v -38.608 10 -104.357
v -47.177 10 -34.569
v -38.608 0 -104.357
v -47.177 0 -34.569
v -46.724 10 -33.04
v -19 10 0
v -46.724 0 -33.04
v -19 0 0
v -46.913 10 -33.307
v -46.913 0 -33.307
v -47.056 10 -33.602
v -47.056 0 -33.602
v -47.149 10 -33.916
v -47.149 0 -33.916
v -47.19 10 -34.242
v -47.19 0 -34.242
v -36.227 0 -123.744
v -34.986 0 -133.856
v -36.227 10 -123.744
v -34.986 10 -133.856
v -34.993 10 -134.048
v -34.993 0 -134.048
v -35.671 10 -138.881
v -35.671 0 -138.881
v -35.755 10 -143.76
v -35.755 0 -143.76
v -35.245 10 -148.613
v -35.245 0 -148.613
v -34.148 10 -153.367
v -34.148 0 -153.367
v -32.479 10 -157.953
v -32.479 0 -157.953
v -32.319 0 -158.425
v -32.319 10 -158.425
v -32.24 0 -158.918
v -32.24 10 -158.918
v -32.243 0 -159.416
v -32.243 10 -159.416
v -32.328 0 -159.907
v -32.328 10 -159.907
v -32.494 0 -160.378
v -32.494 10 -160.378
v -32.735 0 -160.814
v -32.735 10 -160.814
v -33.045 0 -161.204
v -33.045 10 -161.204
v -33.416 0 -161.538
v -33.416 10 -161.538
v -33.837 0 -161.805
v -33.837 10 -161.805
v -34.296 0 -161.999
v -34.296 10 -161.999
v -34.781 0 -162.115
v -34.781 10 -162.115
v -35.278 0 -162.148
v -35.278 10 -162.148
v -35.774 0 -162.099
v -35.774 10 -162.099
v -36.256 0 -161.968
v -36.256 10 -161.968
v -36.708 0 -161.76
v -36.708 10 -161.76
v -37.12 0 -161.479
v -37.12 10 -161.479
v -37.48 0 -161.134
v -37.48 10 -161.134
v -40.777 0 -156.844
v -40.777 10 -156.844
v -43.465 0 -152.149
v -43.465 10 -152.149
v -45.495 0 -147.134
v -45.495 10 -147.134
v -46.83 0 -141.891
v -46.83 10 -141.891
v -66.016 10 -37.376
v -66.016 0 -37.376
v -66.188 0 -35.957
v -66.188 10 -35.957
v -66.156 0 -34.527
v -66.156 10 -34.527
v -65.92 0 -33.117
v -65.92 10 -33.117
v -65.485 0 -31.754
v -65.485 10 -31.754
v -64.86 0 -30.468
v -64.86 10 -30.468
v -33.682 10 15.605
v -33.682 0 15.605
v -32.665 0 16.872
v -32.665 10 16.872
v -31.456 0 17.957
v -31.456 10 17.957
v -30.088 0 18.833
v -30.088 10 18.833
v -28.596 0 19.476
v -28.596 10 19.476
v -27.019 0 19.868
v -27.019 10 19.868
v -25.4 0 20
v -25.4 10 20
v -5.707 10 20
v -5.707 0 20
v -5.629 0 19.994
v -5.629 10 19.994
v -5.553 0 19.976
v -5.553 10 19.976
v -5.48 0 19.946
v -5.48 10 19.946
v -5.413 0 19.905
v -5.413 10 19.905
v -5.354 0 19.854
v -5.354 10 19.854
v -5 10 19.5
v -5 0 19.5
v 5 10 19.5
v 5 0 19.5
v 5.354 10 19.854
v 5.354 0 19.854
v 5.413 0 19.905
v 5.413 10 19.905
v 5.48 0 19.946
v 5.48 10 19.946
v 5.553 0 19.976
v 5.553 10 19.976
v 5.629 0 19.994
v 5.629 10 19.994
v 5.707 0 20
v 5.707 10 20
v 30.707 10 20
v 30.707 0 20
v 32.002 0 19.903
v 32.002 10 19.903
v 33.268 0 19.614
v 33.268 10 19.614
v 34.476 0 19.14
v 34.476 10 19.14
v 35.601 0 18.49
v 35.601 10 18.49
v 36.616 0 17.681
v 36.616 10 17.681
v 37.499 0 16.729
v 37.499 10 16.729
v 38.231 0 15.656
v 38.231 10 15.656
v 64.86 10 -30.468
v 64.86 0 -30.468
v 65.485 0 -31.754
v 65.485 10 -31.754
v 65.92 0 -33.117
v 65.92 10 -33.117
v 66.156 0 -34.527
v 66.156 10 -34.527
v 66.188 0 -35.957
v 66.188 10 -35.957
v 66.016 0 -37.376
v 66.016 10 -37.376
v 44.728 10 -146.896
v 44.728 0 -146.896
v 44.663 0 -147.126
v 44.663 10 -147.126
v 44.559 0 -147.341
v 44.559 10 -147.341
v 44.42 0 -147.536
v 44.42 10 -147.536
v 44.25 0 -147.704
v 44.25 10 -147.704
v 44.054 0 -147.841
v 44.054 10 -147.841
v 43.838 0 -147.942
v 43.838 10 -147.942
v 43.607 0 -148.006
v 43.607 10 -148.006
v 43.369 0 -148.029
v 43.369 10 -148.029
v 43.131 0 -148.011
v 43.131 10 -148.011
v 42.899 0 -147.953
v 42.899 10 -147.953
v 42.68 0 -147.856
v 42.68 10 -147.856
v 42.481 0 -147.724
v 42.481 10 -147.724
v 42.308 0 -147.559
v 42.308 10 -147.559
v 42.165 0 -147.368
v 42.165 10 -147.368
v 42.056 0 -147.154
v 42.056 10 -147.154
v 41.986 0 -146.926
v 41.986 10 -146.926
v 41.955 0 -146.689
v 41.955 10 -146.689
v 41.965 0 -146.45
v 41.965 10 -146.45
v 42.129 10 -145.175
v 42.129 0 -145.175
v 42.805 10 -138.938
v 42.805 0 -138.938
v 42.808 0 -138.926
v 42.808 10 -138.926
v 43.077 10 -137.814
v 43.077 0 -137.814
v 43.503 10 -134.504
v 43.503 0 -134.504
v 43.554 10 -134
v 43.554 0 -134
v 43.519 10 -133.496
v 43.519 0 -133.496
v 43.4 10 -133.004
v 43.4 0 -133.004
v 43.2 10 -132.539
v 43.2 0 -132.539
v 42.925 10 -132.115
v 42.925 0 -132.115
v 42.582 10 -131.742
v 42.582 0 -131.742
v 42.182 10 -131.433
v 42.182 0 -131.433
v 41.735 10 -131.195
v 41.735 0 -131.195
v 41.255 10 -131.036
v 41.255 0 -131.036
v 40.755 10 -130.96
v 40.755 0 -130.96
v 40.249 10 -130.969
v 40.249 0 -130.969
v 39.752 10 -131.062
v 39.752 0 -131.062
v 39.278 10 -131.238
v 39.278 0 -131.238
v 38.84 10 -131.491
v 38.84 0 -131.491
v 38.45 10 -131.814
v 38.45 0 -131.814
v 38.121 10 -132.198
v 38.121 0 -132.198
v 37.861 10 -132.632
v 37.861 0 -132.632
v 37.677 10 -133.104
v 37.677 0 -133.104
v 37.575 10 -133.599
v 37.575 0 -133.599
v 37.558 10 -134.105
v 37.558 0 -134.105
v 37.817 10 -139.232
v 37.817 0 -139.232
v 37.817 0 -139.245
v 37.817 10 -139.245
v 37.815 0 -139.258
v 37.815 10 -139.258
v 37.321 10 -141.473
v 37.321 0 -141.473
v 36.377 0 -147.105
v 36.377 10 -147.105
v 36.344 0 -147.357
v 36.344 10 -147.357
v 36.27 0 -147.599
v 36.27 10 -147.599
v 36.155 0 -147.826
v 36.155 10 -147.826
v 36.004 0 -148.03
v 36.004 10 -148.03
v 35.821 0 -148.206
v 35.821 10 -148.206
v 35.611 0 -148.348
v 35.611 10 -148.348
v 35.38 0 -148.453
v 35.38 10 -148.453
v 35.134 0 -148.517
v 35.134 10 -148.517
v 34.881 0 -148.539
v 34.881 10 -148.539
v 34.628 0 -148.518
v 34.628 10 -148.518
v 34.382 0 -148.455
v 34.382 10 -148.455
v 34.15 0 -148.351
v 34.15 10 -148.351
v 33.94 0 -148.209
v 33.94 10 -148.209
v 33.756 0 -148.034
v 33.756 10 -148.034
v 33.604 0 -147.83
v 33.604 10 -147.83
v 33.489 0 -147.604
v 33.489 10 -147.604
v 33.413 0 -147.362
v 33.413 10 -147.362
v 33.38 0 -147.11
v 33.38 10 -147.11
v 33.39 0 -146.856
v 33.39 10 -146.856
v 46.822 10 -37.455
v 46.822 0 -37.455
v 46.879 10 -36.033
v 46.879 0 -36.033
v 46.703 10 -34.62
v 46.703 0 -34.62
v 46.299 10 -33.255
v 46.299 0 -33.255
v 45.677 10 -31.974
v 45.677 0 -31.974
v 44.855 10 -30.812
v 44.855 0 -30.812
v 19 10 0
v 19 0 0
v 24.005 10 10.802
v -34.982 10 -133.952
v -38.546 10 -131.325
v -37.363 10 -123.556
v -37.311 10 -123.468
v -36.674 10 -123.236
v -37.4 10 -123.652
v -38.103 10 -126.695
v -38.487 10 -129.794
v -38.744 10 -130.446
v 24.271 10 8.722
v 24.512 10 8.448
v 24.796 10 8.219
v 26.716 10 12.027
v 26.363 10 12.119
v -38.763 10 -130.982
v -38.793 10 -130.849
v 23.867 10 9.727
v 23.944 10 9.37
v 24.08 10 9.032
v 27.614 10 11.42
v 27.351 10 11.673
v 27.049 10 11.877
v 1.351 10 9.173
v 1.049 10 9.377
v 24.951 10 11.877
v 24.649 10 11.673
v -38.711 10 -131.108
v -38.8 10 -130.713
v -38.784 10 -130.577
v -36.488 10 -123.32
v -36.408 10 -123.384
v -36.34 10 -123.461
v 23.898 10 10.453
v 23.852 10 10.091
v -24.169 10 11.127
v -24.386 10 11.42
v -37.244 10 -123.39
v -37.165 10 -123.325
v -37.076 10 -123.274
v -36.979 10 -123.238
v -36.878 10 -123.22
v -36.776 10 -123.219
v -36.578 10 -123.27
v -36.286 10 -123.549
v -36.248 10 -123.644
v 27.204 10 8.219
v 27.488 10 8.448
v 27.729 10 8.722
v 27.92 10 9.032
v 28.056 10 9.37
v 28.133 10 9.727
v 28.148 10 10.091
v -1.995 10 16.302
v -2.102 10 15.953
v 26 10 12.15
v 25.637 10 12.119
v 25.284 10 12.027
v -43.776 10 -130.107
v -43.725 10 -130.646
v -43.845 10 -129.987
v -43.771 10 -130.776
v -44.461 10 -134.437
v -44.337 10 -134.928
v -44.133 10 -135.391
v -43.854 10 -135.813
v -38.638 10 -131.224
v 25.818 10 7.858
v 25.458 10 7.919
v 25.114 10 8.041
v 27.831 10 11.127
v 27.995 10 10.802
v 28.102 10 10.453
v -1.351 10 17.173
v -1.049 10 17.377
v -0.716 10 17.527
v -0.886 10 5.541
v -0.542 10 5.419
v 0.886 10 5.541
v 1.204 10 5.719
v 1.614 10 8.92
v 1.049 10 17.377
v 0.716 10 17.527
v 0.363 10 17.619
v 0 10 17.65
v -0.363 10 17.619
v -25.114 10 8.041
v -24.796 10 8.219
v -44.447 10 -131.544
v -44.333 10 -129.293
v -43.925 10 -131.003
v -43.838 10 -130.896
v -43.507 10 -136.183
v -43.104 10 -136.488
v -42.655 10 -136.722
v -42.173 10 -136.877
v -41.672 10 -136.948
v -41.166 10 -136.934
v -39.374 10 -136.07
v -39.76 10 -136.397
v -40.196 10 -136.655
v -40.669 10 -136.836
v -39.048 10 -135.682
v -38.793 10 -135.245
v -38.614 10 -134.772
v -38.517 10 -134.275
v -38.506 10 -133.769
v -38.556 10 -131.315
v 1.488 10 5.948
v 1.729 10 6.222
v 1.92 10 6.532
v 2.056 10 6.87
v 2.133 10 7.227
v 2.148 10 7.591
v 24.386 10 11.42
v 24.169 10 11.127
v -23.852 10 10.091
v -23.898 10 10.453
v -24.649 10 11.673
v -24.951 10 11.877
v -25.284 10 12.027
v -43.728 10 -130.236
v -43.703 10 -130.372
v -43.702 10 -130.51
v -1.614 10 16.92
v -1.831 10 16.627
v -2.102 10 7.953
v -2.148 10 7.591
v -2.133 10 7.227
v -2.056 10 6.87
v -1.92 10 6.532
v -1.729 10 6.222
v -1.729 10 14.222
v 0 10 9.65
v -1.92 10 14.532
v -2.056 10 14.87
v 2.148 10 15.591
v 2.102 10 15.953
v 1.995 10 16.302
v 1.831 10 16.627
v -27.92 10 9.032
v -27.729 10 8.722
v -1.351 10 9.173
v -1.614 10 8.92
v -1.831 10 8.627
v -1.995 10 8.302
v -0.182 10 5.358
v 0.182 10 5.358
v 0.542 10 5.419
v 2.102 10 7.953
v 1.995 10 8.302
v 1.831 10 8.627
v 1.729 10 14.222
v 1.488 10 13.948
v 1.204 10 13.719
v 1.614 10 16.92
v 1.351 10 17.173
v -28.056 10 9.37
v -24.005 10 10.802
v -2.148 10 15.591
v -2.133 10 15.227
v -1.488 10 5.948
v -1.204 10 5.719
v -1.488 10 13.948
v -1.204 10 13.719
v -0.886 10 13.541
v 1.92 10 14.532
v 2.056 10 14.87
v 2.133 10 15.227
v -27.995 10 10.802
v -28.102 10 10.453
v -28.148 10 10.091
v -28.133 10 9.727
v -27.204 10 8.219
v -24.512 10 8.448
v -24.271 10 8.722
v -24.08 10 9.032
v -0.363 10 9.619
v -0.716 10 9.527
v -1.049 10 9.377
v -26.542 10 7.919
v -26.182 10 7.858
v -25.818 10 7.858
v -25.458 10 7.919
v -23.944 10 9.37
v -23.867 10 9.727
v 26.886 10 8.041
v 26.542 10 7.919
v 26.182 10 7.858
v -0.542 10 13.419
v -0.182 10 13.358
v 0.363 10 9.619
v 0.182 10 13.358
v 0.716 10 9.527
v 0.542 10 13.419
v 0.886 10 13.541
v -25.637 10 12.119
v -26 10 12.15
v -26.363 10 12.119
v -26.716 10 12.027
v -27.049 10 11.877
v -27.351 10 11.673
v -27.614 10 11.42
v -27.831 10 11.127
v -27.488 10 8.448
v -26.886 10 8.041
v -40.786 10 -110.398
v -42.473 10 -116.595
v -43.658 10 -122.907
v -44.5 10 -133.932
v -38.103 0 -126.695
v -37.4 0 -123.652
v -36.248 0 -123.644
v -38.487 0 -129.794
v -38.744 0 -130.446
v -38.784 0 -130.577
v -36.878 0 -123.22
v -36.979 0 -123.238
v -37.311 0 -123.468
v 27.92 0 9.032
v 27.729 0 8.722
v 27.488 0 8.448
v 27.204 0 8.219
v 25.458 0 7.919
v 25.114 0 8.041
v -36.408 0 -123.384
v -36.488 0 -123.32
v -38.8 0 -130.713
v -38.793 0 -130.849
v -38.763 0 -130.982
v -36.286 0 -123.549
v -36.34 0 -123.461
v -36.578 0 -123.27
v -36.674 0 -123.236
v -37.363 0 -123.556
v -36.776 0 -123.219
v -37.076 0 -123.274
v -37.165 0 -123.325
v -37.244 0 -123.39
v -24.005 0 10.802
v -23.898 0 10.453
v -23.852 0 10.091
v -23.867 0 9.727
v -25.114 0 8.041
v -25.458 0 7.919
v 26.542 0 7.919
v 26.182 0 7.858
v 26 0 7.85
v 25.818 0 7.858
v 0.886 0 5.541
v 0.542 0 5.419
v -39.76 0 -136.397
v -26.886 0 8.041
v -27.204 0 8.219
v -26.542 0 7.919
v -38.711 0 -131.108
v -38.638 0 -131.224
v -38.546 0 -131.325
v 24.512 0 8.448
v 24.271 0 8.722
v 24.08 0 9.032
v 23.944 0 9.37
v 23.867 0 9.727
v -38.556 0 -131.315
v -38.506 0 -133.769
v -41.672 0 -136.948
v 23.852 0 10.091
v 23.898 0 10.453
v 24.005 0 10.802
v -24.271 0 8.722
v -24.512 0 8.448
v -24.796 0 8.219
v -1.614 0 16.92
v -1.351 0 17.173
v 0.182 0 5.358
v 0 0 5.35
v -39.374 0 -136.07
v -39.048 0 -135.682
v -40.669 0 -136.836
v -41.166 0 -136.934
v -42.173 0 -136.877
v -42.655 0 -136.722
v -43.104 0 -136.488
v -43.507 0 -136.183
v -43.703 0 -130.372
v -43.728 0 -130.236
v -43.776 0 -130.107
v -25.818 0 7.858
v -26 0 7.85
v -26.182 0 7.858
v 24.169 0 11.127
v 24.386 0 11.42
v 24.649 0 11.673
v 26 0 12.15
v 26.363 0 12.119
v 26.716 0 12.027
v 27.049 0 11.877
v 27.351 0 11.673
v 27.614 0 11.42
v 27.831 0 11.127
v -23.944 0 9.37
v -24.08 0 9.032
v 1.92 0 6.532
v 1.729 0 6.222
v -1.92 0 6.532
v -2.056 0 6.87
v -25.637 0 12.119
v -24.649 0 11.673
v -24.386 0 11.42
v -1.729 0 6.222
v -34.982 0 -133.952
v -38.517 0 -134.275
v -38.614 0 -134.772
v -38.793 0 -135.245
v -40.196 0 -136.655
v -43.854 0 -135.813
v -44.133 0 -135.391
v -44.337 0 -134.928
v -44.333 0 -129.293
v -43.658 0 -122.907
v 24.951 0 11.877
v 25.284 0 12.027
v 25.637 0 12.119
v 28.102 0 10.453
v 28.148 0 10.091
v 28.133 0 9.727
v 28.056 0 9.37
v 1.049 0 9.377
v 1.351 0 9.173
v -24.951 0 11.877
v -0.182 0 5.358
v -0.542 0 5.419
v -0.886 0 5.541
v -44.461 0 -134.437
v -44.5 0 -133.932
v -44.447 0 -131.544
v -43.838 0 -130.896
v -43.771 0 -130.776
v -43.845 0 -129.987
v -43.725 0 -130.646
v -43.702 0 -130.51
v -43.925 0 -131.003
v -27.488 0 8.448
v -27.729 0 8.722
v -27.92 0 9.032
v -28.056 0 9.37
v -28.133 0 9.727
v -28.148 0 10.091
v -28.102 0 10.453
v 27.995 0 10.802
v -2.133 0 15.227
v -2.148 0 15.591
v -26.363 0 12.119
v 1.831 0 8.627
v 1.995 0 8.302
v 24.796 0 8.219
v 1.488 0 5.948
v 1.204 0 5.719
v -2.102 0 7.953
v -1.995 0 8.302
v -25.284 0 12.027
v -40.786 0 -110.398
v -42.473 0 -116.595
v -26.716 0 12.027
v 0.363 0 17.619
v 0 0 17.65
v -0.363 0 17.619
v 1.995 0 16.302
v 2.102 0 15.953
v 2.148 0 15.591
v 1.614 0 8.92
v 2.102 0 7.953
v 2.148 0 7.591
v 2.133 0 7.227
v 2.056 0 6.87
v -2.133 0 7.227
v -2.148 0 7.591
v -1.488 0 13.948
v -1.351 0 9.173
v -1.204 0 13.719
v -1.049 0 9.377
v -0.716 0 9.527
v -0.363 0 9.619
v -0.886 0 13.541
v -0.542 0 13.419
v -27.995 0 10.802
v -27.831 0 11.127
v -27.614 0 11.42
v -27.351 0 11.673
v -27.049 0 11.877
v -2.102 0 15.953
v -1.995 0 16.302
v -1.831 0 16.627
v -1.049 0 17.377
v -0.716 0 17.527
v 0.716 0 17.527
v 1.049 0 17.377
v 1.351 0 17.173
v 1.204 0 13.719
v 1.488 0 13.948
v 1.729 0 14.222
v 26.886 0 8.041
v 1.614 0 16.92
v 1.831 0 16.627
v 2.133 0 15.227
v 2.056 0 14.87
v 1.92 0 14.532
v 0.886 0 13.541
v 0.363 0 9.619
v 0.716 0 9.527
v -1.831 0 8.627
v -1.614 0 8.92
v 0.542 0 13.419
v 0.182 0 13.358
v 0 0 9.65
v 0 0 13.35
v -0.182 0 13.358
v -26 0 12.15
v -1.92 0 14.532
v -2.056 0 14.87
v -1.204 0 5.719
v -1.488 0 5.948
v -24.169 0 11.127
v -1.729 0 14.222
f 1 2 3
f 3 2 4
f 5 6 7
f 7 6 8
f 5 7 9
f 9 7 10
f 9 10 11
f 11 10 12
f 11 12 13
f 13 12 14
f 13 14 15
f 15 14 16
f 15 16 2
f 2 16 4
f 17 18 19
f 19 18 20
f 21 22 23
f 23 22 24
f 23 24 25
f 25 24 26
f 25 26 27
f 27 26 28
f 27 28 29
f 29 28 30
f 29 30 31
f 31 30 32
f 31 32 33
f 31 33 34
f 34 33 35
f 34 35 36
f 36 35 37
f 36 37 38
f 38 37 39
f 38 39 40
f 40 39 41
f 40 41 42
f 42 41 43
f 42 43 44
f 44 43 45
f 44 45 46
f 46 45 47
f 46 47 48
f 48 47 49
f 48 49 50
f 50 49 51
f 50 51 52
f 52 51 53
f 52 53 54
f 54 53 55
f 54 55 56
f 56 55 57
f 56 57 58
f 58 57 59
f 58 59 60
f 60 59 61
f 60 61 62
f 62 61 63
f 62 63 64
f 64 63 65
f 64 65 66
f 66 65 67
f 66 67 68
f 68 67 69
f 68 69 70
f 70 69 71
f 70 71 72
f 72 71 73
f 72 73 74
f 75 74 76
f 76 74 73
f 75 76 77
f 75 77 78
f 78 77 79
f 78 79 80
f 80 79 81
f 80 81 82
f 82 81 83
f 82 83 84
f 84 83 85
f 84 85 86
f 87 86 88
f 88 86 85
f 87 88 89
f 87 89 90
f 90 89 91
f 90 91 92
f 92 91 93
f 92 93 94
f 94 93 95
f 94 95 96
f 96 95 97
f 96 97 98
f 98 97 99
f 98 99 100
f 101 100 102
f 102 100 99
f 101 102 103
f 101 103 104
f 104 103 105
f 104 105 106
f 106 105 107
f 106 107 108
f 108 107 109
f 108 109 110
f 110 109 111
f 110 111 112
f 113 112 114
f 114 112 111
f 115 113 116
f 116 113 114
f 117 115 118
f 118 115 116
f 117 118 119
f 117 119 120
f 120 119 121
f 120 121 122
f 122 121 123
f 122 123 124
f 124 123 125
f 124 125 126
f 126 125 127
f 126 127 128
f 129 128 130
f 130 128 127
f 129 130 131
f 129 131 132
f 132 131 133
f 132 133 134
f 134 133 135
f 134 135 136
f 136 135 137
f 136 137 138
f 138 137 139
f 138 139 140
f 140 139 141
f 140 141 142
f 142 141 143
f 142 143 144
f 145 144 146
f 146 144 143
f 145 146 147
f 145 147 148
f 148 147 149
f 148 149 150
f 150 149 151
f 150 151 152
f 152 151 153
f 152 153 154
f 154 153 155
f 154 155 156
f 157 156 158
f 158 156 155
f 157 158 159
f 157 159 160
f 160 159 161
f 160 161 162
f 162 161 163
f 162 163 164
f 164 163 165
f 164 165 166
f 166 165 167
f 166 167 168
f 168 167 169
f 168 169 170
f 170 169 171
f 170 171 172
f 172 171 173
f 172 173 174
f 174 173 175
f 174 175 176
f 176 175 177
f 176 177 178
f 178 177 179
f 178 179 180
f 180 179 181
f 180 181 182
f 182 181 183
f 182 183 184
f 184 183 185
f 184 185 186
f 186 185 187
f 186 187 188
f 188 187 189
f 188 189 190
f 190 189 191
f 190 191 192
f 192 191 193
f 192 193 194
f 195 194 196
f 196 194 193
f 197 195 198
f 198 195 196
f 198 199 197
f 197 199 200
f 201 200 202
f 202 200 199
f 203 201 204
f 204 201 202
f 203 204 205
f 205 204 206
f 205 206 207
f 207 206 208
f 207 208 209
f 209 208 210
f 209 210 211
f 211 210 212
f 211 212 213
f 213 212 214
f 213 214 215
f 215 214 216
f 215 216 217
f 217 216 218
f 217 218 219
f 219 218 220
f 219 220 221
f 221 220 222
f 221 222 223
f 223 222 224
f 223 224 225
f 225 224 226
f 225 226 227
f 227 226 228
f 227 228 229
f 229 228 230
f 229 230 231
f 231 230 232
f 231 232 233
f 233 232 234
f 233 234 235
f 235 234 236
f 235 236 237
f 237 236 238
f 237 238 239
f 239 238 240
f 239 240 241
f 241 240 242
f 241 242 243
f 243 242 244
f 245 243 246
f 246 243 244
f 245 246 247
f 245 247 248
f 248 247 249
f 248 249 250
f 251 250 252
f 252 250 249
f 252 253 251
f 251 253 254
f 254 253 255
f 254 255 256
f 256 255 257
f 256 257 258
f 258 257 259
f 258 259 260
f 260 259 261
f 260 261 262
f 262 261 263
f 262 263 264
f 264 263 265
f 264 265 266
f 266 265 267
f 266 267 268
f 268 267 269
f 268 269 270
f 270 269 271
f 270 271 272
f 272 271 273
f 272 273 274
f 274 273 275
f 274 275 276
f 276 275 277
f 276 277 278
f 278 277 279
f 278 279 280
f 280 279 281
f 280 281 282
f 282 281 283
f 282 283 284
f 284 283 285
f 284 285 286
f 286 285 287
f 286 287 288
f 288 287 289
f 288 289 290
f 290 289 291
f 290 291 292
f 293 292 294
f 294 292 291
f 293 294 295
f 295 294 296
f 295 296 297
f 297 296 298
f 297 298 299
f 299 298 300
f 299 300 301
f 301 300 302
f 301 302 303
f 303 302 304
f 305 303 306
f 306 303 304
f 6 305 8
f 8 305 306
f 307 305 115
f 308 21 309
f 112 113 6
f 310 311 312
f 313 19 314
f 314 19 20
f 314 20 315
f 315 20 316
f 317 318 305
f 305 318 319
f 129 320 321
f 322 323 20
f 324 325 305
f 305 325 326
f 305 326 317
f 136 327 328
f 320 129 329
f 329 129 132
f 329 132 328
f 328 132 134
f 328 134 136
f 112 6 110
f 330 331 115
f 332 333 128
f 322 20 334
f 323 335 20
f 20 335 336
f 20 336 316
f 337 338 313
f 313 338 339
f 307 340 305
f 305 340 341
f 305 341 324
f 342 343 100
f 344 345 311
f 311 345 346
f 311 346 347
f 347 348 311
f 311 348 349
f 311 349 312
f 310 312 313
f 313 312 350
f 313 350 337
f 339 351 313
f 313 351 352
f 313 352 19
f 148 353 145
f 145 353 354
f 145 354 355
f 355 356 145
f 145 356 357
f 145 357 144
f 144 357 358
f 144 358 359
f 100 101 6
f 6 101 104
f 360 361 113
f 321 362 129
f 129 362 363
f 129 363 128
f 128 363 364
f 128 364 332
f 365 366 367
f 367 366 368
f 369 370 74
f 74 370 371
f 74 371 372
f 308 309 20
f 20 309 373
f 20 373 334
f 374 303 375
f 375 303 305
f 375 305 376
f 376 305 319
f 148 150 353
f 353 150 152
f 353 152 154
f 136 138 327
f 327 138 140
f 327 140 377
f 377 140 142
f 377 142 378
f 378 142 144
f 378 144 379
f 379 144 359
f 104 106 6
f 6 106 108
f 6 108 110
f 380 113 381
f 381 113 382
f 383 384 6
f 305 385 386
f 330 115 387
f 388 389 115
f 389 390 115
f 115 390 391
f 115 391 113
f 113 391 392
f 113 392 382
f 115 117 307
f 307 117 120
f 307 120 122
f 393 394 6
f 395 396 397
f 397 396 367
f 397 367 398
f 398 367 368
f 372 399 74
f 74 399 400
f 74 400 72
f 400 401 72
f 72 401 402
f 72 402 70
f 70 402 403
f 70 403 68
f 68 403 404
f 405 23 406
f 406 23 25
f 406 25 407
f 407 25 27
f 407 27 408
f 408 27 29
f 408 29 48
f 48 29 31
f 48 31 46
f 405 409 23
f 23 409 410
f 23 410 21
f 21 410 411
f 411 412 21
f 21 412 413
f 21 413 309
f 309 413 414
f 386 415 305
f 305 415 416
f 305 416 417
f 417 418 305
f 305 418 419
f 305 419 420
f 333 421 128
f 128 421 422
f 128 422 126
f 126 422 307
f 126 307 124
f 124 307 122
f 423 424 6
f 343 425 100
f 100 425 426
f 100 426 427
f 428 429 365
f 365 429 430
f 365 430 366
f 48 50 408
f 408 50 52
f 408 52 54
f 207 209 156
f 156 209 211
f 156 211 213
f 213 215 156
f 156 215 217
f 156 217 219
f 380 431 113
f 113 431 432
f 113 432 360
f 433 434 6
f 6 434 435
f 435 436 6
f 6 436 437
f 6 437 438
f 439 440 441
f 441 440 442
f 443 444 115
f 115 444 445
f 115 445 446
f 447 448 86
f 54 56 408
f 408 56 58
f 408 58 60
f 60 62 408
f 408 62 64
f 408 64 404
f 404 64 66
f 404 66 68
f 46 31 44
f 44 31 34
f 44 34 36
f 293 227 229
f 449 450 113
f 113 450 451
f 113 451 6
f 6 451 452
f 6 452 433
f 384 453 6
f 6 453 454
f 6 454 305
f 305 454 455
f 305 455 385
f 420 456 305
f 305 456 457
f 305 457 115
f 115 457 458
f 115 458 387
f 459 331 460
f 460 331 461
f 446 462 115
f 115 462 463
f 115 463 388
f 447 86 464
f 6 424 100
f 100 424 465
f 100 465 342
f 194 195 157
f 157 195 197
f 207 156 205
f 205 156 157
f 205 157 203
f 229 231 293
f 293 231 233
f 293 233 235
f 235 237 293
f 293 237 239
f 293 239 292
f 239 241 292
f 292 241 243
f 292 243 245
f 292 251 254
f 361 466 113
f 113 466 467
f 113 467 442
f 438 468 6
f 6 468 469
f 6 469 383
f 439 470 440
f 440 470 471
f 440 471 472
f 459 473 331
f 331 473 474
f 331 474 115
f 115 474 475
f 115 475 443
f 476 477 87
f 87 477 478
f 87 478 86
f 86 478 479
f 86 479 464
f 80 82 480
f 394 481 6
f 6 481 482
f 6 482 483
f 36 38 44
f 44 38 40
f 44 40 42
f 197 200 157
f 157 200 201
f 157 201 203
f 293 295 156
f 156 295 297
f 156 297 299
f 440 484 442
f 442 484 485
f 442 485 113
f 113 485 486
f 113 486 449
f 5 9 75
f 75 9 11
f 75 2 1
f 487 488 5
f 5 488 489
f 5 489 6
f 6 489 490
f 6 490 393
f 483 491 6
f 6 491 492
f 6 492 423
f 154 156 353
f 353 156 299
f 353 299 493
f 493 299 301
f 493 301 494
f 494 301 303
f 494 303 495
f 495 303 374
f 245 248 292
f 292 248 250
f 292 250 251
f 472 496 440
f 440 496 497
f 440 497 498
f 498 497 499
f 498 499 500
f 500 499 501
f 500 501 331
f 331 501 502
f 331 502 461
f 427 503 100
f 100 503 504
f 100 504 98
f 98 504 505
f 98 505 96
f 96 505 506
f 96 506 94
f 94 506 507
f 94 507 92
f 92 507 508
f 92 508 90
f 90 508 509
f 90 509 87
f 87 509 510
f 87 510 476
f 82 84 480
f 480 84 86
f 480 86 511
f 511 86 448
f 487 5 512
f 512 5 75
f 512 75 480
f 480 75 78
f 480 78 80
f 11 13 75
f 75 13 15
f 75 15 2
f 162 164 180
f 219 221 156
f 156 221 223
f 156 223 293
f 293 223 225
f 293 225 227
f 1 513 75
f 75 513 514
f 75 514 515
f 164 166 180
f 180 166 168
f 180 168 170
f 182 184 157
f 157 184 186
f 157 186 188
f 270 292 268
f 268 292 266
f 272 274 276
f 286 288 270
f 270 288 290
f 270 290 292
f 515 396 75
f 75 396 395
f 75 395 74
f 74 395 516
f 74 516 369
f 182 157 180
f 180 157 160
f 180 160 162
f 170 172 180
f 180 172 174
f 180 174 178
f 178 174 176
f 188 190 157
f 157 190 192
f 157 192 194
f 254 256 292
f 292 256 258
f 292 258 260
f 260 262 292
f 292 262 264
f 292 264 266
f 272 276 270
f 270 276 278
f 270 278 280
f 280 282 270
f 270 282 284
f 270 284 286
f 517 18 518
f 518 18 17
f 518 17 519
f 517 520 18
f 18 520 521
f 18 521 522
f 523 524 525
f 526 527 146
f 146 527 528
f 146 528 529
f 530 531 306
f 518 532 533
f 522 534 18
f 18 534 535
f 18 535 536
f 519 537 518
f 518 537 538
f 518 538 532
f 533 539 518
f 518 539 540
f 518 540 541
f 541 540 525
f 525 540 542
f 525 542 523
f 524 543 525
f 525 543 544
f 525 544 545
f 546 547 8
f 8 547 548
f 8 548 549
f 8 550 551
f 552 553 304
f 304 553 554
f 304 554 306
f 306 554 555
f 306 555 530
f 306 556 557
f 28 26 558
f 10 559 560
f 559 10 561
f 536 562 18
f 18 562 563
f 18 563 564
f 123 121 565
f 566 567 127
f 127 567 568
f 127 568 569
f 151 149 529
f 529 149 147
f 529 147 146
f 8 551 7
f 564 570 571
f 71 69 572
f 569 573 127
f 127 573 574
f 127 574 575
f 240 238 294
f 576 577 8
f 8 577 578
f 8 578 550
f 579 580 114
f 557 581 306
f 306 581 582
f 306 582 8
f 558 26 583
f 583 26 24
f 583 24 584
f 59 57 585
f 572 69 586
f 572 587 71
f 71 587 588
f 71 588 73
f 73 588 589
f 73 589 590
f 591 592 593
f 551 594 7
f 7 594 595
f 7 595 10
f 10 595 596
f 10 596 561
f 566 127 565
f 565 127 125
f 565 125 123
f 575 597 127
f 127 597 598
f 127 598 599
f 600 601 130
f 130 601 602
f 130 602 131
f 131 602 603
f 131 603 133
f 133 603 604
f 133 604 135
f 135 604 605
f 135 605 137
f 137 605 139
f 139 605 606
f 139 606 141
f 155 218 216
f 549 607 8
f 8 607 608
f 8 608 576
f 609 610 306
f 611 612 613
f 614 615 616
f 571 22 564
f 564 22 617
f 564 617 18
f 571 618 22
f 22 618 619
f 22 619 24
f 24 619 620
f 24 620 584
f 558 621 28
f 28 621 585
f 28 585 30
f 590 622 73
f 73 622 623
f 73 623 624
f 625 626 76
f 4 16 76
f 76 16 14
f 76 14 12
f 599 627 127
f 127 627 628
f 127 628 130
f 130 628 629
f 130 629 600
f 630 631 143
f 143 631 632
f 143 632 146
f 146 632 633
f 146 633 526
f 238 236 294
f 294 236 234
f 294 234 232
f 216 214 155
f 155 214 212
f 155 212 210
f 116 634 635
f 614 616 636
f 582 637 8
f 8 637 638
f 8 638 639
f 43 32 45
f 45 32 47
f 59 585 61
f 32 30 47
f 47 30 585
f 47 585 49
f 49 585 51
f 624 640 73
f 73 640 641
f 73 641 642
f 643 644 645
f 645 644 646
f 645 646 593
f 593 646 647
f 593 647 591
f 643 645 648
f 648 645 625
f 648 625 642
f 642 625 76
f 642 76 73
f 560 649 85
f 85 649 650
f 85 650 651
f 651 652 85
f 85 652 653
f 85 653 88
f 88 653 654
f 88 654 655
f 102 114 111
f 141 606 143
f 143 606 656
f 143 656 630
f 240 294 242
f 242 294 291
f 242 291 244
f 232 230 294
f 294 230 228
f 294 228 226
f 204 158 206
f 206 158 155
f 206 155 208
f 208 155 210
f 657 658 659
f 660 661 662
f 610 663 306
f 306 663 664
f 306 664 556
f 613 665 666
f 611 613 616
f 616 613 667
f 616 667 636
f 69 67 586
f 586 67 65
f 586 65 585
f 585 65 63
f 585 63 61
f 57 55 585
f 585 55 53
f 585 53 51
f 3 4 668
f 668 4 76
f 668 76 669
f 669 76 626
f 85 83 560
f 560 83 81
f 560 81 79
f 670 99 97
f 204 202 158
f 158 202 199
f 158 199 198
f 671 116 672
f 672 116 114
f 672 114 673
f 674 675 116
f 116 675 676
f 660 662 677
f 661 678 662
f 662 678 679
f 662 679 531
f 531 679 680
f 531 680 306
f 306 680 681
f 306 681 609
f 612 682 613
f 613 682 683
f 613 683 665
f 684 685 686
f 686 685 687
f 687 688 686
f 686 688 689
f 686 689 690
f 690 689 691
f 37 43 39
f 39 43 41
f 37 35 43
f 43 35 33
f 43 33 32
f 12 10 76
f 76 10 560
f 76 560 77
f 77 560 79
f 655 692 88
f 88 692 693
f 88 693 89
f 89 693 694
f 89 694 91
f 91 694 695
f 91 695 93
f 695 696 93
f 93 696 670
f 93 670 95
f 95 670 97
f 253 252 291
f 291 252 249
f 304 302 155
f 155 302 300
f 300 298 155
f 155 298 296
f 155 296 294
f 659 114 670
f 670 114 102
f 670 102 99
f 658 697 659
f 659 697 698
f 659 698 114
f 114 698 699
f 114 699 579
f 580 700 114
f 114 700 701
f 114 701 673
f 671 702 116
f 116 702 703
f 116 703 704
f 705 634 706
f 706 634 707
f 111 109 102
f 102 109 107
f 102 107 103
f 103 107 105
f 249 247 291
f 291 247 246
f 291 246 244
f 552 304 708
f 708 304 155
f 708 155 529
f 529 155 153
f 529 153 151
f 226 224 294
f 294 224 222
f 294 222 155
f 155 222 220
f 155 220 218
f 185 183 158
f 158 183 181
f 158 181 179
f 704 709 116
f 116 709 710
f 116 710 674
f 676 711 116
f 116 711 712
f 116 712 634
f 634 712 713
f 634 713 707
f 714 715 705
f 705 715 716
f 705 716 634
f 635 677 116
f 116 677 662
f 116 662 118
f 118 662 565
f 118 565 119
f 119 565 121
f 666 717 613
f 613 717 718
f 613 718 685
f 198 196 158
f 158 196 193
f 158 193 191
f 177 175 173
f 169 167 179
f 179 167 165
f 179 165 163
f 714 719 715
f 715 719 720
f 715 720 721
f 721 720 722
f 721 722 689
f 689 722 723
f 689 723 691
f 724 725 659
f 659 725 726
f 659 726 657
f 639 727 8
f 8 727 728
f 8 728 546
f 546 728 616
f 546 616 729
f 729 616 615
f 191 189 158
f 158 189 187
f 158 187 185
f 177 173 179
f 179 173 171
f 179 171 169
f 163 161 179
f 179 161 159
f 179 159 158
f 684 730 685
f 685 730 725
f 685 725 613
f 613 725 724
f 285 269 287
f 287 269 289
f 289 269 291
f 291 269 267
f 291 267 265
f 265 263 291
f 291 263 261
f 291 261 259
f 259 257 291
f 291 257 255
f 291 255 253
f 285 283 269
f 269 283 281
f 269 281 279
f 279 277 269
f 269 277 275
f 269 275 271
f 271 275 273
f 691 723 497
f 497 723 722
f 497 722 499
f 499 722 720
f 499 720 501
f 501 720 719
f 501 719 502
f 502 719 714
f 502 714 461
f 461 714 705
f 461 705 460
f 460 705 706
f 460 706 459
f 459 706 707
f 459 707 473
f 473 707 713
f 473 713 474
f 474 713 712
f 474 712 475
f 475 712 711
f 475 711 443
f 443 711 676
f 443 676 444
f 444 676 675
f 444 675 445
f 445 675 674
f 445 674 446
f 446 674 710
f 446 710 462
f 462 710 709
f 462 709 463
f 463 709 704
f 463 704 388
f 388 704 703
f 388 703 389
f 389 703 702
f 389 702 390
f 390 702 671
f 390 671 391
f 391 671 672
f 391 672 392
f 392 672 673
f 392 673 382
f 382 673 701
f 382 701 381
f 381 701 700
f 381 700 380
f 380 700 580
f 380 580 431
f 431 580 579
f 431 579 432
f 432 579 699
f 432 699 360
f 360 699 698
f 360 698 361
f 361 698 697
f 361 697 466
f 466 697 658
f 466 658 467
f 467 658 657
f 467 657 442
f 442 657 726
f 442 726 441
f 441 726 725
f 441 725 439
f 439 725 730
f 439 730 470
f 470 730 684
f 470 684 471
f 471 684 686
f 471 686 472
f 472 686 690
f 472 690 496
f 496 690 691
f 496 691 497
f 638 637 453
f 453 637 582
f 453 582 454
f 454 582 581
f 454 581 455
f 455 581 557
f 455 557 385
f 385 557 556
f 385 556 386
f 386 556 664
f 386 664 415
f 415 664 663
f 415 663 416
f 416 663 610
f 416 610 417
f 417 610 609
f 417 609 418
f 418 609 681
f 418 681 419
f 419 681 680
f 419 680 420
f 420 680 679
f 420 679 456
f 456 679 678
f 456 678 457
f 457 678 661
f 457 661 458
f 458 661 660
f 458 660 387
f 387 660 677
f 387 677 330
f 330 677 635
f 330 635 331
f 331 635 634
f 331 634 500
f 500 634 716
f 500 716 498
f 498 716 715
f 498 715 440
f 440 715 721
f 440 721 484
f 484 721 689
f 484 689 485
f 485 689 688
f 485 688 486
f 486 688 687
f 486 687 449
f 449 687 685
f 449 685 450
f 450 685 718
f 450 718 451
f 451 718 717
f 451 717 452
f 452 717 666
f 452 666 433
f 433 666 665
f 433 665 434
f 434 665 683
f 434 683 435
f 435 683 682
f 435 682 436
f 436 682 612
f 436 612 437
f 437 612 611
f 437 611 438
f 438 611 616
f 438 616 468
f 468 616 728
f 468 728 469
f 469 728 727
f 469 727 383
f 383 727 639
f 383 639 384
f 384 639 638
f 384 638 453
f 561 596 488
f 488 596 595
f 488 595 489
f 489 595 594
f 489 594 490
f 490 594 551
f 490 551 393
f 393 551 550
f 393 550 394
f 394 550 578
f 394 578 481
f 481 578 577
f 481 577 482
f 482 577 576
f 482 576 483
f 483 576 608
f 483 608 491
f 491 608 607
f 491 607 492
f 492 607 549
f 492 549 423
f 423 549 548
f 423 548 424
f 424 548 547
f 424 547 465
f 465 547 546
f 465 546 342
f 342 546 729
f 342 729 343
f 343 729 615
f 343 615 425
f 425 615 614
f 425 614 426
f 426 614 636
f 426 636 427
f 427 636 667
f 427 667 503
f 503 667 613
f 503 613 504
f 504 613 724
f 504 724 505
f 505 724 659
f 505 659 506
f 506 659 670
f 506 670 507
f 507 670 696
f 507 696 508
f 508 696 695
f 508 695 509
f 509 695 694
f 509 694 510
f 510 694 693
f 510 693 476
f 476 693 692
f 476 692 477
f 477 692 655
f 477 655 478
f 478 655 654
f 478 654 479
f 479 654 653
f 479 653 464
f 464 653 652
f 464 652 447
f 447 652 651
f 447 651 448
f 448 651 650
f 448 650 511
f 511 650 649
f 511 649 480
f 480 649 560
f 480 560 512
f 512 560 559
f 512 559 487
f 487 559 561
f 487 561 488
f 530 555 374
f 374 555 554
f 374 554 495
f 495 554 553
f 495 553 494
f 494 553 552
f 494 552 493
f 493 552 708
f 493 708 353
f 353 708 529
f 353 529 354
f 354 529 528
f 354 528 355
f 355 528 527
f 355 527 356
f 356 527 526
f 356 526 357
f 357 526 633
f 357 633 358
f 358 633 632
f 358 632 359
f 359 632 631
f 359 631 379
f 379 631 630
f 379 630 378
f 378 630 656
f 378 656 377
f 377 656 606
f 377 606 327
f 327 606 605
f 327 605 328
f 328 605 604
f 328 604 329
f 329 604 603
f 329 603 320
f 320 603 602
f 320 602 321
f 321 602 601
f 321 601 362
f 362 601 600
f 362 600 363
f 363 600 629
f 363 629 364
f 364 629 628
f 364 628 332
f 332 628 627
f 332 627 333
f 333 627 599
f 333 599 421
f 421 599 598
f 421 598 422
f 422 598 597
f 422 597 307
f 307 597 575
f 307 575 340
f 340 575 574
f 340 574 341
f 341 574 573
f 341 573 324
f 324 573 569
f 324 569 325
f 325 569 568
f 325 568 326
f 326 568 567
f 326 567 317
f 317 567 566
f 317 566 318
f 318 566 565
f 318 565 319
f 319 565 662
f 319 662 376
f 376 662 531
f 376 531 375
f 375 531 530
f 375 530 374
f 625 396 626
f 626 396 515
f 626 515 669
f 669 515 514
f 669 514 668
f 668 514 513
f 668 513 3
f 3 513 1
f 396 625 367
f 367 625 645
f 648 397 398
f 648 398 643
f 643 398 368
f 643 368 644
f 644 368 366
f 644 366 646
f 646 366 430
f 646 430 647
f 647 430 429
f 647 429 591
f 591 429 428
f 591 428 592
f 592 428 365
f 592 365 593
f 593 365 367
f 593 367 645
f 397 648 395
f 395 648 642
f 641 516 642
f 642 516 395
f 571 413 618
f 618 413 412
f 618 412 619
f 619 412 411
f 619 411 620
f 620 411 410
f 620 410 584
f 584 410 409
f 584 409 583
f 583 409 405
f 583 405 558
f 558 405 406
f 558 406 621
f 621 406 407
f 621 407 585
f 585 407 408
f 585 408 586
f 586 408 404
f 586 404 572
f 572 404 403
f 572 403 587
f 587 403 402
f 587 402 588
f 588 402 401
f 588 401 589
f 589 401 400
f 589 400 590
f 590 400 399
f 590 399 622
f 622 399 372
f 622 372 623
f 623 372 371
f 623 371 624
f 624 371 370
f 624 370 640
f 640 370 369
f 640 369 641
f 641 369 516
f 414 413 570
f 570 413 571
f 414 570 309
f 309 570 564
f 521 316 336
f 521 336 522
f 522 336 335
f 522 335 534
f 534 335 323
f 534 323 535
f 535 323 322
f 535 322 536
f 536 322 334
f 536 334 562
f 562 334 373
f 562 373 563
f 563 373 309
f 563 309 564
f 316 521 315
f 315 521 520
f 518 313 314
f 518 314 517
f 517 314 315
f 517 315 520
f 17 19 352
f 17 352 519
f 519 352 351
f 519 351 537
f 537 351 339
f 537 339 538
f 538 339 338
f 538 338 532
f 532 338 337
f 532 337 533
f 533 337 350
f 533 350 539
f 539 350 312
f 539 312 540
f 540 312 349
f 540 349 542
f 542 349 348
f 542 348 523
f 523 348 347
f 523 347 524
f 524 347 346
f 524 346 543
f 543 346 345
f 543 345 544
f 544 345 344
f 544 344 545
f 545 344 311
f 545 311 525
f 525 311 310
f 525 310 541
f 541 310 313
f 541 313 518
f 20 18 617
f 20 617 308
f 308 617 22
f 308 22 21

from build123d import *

# Parameters (mm, degrees)
EXTRUDE_1_DEPTH     = 10
CUT_EXTRUDE_1_REACH = 177.427
SKETCH_2_R          = 2.15
FILLET_1_R          = 0.6


with BuildPart() as part:
    # 草图1 → 凸台-拉伸1 (new body)
    with BuildSketch(Plane(origin=(0, 0, 0), x_dir=(1, 0, 0), z_dir=(0, 1, 0))):
        with BuildLine():
            Line((-19, 0), (19, 0))
            Line((19, 0), (44.854614973, 30.81233028))
            ThreePointArc((44.854614973, 30.81233028), (46.529317931, 33.929104052), (46.82231051, 37.455159084))
            Line((46.82231051, 37.455159084), (33.389549678, 146.856216784))
            ThreePointArc((33.389549678, 146.856216784), (34.753999407, 148.533855984), (36.376927445, 147.104765038))
            ThreePointArc((36.376927445, 147.104765038), (36.892496808, 144.296291333), (37.320815542, 141.473193853))
            Line((37.320815542, 141.473193853), (37.815132232, 139.258398169))
            ThreePointArc((37.815132232, 139.258398169), (37.817176658, 139.245056143), (37.817405692, 139.231560332))
            Line((37.817405692, 139.231560332), (37.557917484, 134.104765038))
            ThreePointArc((37.557917484, 134.104765038), (40.754926912, 130.959847465), (43.503129215, 134.503681536))
            Line((43.503129215, 134.503681536), (43.077003941, 137.813685213))
            Line((43.077003941, 137.813685213), (42.807637334, 138.925557366))
            ThreePointArc((42.807637334, 138.925557366), (42.806315787, 138.931905108), (42.80540838, 138.938325149))
            Line((42.80540838, 138.938325149), (42.129277547, 145.175318139))
            Line((42.129277547, 145.175318139), (41.965181023, 146.44996701))
            ThreePointArc((41.965181023, 146.44996701), (43.130662006, 148.010841711), (44.727999785, 146.895858405))
            Line((44.727999785, 146.895858405), (66.016482503, 37.376109146))
            ThreePointArc((66.016482503, 37.376109146), (66.063066684, 33.817543133), (64.860464706, 30.468019192))
            Line((64.860464706, 30.468019192), (38.23055697, -15.656334008))
            ThreePointArc((38.23055697, -15.656334008), (35.050772773, -18.836118205), (30.707106781, -20))
            Line((30.707106781, -20), (5.707106781, -20))
            ThreePointArc((5.707106781, -20), (5.515765065, -19.961939766), (5.353553391, -19.853553391))
            Line((5.353553391, -19.853553391), (5, -19.5))
            Line((5, -19.5), (-5, -19.5))
            Line((-5, -19.5), (-5.353553391, -19.853553391))
            ThreePointArc((-5.353553391, -19.853553391), (-5.515765065, -19.961939766), (-5.707106781, -20))
            Line((-5.707106781, -20), (-25.399802658, -20))
            ThreePointArc((-25.399802658, -20), (-30.087775174, -18.833058003), (-33.681629288, -15.604582738))
            Line((-33.681629288, -15.604582738), (-64.860464706, 30.468019192))
            ThreePointArc((-64.860464706, 30.468019192), (-66.063066684, 33.817543133), (-66.016482503, 37.376109146))
            Line((-66.016482503, 37.376109146), (-46.829620455, 141.890886738))
            ThreePointArc((-46.829620455, 141.890886738), (-43.465252598, 152.148967586), (-37.480163066, 161.13372674))
            ThreePointArc((-37.480163066, 161.13372674), (-33.620696298, 161.680216975), (-32.479267504, 157.953116813))
            ThreePointArc((-32.479267504, 157.953116813), (-35.579400499, 146.14570295), (-34.973851142, 133.953116813))
            Line((-34.973851142, 133.953116813), (-47.176674229, 34.569098196))
            ThreePointArc((-47.176674229, 34.569098196), (-47.109221395, 33.75732882), (-46.723670812, 33.03978429))
            Line((-46.723670812, 33.03978429), (-19, 0))
        make_face()
    extrude(amount=EXTRUDE_1_DEPTH)

    # 草图2 → 切除-拉伸1 (cut, up to next)
    with BuildSketch(Plane(origin=(0, 10, 0), x_dir=(1, 0, 0), z_dir=(0, 1, 0)), mode=Mode.PRIVATE) as cut_extrude_1_sk1:
        with Locations(Location((0, -15.5, 0), (0, 0, 270))):
            Circle(SKETCH_2_R)
    cut_extrude_1_tool1 = extrude(cut_extrude_1_sk1.sketch, amount=-CUT_EXTRUDE_1_REACH, mode=Mode.PRIVATE) & part.part
    # 草图2 → 切除-拉伸1 (cut, up to next)
    with BuildSketch(Plane(origin=(0, 10, 0), x_dir=(1, 0, 0), z_dir=(0, 1, 0)), mode=Mode.PRIVATE) as cut_extrude_1_sk2:
        with Locations(Location((0, -7.5, 0), (0, 0, 270))):
            Circle(SKETCH_2_R)
    cut_extrude_1_tool2 = extrude(cut_extrude_1_sk2.sketch, amount=-CUT_EXTRUDE_1_REACH, mode=Mode.PRIVATE) & part.part
    # 草图2 → 切除-拉伸1 (cut, up to next)
    with BuildSketch(Plane(origin=(0, 10, 0), x_dir=(1, 0, 0), z_dir=(0, 1, 0)), mode=Mode.PRIVATE) as cut_extrude_1_sk3:
        with Locations(Location((-26, -10, 0), (0, 0, 270))):
            Circle(SKETCH_2_R)
    cut_extrude_1_tool3 = extrude(cut_extrude_1_sk3.sketch, amount=-CUT_EXTRUDE_1_REACH, mode=Mode.PRIVATE) & part.part
    # 草图2 → 切除-拉伸1 (cut, up to next)
    with BuildSketch(Plane(origin=(0, 10, 0), x_dir=(1, 0, 0), z_dir=(0, 1, 0)), mode=Mode.PRIVATE) as cut_extrude_1_sk4:
        with Locations(Location((26, -10, 0), (0, 0, 270))):
            Circle(SKETCH_2_R)
    cut_extrude_1_tool4 = extrude(cut_extrude_1_sk4.sketch, amount=-CUT_EXTRUDE_1_REACH, mode=Mode.PRIVATE) & part.part
    # 草图2 → 切除-拉伸1 (cut, up to next)
    with BuildSketch(Plane(origin=(0, 10, 0), x_dir=(1, 0, 0), z_dir=(0, 1, 0)), mode=Mode.PRIVATE) as cut_extrude_1_sk5:
        with BuildLine():
            Line((-36.549558395, 121.120011078), (-38.607748185, 104.35740041))
            ThreePointArc((-38.607748185, 104.35740041), (-42.47341142, 116.594845153), (-44.332546284, 129.292956179))
            Line((-44.332546284, 129.292956179), (-43.845113062, 129.987442667))
            ThreePointArc((-43.845113062, 129.987442667), (-43.702378092, 130.509625408), (-43.924830211, 131.003146575))
            Line((-43.924830211, 131.003146575), (-44.447419993, 131.543571067))
            ThreePointArc((-44.447419993, 131.543571067), (-44.482588605, 132.737575539), (-44.499925482, 133.931972015))
            ThreePointArc((-44.499925482, 133.931972015), (-41.418283025, 136.952003662), (-38.505677682, 133.768634142))
            ThreePointArc((-38.505677682, 133.768634142), (-38.556072369, 132.542586282), (-38.556286633, 131.315503182))
            Line((-38.556286633, 131.315503182), (-38.546052546, 131.325051295))
            ThreePointArc((-38.546052546, 131.325051295), (-38.780683801, 130.91622187), (-38.744387532, 130.446247504))
            Line((-38.744387532, 130.446247504), (-38.486748585, 129.793872308))
            ThreePointArc((-38.486748585, 129.793872308), (-37.841140795, 125.384806825), (-36.549558395, 121.120011078))
        make_face()
    cut_extrude_1_tool5 = extrude(cut_extrude_1_sk5.sketch, amount=-CUT_EXTRUDE_1_REACH, mode=Mode.PRIVATE) & part.part
    add(cut_extrude_1_tool1.solids().sort_by_distance((0, 10, 15.5))[0], mode=Mode.SUBTRACT)
    add(cut_extrude_1_tool2.solids().sort_by_distance((0, 10, 7.5))[0], mode=Mode.SUBTRACT)
    add(cut_extrude_1_tool3.solids().sort_by_distance((-26, 10, 10))[0], mode=Mode.SUBTRACT)
    add(cut_extrude_1_tool4.solids().sort_by_distance((26, 10, 10))[0], mode=Mode.SUBTRACT)
    add(cut_extrude_1_tool5.solids().sort_by_distance((-40.502089, 10, -123.156617))[0], mode=Mode.SUBTRACT)

    # 圆角1
    fillet_1_edges = [part.edges().sort_by_distance(p)[0] for p in [
        (-36.549558395, 5, -121.120011078),
        (-34.973851142, 5, -133.953116813),
    ]]
    fillet(fillet_1_edges, radius=FILLET_1_R)


solid = part.part
